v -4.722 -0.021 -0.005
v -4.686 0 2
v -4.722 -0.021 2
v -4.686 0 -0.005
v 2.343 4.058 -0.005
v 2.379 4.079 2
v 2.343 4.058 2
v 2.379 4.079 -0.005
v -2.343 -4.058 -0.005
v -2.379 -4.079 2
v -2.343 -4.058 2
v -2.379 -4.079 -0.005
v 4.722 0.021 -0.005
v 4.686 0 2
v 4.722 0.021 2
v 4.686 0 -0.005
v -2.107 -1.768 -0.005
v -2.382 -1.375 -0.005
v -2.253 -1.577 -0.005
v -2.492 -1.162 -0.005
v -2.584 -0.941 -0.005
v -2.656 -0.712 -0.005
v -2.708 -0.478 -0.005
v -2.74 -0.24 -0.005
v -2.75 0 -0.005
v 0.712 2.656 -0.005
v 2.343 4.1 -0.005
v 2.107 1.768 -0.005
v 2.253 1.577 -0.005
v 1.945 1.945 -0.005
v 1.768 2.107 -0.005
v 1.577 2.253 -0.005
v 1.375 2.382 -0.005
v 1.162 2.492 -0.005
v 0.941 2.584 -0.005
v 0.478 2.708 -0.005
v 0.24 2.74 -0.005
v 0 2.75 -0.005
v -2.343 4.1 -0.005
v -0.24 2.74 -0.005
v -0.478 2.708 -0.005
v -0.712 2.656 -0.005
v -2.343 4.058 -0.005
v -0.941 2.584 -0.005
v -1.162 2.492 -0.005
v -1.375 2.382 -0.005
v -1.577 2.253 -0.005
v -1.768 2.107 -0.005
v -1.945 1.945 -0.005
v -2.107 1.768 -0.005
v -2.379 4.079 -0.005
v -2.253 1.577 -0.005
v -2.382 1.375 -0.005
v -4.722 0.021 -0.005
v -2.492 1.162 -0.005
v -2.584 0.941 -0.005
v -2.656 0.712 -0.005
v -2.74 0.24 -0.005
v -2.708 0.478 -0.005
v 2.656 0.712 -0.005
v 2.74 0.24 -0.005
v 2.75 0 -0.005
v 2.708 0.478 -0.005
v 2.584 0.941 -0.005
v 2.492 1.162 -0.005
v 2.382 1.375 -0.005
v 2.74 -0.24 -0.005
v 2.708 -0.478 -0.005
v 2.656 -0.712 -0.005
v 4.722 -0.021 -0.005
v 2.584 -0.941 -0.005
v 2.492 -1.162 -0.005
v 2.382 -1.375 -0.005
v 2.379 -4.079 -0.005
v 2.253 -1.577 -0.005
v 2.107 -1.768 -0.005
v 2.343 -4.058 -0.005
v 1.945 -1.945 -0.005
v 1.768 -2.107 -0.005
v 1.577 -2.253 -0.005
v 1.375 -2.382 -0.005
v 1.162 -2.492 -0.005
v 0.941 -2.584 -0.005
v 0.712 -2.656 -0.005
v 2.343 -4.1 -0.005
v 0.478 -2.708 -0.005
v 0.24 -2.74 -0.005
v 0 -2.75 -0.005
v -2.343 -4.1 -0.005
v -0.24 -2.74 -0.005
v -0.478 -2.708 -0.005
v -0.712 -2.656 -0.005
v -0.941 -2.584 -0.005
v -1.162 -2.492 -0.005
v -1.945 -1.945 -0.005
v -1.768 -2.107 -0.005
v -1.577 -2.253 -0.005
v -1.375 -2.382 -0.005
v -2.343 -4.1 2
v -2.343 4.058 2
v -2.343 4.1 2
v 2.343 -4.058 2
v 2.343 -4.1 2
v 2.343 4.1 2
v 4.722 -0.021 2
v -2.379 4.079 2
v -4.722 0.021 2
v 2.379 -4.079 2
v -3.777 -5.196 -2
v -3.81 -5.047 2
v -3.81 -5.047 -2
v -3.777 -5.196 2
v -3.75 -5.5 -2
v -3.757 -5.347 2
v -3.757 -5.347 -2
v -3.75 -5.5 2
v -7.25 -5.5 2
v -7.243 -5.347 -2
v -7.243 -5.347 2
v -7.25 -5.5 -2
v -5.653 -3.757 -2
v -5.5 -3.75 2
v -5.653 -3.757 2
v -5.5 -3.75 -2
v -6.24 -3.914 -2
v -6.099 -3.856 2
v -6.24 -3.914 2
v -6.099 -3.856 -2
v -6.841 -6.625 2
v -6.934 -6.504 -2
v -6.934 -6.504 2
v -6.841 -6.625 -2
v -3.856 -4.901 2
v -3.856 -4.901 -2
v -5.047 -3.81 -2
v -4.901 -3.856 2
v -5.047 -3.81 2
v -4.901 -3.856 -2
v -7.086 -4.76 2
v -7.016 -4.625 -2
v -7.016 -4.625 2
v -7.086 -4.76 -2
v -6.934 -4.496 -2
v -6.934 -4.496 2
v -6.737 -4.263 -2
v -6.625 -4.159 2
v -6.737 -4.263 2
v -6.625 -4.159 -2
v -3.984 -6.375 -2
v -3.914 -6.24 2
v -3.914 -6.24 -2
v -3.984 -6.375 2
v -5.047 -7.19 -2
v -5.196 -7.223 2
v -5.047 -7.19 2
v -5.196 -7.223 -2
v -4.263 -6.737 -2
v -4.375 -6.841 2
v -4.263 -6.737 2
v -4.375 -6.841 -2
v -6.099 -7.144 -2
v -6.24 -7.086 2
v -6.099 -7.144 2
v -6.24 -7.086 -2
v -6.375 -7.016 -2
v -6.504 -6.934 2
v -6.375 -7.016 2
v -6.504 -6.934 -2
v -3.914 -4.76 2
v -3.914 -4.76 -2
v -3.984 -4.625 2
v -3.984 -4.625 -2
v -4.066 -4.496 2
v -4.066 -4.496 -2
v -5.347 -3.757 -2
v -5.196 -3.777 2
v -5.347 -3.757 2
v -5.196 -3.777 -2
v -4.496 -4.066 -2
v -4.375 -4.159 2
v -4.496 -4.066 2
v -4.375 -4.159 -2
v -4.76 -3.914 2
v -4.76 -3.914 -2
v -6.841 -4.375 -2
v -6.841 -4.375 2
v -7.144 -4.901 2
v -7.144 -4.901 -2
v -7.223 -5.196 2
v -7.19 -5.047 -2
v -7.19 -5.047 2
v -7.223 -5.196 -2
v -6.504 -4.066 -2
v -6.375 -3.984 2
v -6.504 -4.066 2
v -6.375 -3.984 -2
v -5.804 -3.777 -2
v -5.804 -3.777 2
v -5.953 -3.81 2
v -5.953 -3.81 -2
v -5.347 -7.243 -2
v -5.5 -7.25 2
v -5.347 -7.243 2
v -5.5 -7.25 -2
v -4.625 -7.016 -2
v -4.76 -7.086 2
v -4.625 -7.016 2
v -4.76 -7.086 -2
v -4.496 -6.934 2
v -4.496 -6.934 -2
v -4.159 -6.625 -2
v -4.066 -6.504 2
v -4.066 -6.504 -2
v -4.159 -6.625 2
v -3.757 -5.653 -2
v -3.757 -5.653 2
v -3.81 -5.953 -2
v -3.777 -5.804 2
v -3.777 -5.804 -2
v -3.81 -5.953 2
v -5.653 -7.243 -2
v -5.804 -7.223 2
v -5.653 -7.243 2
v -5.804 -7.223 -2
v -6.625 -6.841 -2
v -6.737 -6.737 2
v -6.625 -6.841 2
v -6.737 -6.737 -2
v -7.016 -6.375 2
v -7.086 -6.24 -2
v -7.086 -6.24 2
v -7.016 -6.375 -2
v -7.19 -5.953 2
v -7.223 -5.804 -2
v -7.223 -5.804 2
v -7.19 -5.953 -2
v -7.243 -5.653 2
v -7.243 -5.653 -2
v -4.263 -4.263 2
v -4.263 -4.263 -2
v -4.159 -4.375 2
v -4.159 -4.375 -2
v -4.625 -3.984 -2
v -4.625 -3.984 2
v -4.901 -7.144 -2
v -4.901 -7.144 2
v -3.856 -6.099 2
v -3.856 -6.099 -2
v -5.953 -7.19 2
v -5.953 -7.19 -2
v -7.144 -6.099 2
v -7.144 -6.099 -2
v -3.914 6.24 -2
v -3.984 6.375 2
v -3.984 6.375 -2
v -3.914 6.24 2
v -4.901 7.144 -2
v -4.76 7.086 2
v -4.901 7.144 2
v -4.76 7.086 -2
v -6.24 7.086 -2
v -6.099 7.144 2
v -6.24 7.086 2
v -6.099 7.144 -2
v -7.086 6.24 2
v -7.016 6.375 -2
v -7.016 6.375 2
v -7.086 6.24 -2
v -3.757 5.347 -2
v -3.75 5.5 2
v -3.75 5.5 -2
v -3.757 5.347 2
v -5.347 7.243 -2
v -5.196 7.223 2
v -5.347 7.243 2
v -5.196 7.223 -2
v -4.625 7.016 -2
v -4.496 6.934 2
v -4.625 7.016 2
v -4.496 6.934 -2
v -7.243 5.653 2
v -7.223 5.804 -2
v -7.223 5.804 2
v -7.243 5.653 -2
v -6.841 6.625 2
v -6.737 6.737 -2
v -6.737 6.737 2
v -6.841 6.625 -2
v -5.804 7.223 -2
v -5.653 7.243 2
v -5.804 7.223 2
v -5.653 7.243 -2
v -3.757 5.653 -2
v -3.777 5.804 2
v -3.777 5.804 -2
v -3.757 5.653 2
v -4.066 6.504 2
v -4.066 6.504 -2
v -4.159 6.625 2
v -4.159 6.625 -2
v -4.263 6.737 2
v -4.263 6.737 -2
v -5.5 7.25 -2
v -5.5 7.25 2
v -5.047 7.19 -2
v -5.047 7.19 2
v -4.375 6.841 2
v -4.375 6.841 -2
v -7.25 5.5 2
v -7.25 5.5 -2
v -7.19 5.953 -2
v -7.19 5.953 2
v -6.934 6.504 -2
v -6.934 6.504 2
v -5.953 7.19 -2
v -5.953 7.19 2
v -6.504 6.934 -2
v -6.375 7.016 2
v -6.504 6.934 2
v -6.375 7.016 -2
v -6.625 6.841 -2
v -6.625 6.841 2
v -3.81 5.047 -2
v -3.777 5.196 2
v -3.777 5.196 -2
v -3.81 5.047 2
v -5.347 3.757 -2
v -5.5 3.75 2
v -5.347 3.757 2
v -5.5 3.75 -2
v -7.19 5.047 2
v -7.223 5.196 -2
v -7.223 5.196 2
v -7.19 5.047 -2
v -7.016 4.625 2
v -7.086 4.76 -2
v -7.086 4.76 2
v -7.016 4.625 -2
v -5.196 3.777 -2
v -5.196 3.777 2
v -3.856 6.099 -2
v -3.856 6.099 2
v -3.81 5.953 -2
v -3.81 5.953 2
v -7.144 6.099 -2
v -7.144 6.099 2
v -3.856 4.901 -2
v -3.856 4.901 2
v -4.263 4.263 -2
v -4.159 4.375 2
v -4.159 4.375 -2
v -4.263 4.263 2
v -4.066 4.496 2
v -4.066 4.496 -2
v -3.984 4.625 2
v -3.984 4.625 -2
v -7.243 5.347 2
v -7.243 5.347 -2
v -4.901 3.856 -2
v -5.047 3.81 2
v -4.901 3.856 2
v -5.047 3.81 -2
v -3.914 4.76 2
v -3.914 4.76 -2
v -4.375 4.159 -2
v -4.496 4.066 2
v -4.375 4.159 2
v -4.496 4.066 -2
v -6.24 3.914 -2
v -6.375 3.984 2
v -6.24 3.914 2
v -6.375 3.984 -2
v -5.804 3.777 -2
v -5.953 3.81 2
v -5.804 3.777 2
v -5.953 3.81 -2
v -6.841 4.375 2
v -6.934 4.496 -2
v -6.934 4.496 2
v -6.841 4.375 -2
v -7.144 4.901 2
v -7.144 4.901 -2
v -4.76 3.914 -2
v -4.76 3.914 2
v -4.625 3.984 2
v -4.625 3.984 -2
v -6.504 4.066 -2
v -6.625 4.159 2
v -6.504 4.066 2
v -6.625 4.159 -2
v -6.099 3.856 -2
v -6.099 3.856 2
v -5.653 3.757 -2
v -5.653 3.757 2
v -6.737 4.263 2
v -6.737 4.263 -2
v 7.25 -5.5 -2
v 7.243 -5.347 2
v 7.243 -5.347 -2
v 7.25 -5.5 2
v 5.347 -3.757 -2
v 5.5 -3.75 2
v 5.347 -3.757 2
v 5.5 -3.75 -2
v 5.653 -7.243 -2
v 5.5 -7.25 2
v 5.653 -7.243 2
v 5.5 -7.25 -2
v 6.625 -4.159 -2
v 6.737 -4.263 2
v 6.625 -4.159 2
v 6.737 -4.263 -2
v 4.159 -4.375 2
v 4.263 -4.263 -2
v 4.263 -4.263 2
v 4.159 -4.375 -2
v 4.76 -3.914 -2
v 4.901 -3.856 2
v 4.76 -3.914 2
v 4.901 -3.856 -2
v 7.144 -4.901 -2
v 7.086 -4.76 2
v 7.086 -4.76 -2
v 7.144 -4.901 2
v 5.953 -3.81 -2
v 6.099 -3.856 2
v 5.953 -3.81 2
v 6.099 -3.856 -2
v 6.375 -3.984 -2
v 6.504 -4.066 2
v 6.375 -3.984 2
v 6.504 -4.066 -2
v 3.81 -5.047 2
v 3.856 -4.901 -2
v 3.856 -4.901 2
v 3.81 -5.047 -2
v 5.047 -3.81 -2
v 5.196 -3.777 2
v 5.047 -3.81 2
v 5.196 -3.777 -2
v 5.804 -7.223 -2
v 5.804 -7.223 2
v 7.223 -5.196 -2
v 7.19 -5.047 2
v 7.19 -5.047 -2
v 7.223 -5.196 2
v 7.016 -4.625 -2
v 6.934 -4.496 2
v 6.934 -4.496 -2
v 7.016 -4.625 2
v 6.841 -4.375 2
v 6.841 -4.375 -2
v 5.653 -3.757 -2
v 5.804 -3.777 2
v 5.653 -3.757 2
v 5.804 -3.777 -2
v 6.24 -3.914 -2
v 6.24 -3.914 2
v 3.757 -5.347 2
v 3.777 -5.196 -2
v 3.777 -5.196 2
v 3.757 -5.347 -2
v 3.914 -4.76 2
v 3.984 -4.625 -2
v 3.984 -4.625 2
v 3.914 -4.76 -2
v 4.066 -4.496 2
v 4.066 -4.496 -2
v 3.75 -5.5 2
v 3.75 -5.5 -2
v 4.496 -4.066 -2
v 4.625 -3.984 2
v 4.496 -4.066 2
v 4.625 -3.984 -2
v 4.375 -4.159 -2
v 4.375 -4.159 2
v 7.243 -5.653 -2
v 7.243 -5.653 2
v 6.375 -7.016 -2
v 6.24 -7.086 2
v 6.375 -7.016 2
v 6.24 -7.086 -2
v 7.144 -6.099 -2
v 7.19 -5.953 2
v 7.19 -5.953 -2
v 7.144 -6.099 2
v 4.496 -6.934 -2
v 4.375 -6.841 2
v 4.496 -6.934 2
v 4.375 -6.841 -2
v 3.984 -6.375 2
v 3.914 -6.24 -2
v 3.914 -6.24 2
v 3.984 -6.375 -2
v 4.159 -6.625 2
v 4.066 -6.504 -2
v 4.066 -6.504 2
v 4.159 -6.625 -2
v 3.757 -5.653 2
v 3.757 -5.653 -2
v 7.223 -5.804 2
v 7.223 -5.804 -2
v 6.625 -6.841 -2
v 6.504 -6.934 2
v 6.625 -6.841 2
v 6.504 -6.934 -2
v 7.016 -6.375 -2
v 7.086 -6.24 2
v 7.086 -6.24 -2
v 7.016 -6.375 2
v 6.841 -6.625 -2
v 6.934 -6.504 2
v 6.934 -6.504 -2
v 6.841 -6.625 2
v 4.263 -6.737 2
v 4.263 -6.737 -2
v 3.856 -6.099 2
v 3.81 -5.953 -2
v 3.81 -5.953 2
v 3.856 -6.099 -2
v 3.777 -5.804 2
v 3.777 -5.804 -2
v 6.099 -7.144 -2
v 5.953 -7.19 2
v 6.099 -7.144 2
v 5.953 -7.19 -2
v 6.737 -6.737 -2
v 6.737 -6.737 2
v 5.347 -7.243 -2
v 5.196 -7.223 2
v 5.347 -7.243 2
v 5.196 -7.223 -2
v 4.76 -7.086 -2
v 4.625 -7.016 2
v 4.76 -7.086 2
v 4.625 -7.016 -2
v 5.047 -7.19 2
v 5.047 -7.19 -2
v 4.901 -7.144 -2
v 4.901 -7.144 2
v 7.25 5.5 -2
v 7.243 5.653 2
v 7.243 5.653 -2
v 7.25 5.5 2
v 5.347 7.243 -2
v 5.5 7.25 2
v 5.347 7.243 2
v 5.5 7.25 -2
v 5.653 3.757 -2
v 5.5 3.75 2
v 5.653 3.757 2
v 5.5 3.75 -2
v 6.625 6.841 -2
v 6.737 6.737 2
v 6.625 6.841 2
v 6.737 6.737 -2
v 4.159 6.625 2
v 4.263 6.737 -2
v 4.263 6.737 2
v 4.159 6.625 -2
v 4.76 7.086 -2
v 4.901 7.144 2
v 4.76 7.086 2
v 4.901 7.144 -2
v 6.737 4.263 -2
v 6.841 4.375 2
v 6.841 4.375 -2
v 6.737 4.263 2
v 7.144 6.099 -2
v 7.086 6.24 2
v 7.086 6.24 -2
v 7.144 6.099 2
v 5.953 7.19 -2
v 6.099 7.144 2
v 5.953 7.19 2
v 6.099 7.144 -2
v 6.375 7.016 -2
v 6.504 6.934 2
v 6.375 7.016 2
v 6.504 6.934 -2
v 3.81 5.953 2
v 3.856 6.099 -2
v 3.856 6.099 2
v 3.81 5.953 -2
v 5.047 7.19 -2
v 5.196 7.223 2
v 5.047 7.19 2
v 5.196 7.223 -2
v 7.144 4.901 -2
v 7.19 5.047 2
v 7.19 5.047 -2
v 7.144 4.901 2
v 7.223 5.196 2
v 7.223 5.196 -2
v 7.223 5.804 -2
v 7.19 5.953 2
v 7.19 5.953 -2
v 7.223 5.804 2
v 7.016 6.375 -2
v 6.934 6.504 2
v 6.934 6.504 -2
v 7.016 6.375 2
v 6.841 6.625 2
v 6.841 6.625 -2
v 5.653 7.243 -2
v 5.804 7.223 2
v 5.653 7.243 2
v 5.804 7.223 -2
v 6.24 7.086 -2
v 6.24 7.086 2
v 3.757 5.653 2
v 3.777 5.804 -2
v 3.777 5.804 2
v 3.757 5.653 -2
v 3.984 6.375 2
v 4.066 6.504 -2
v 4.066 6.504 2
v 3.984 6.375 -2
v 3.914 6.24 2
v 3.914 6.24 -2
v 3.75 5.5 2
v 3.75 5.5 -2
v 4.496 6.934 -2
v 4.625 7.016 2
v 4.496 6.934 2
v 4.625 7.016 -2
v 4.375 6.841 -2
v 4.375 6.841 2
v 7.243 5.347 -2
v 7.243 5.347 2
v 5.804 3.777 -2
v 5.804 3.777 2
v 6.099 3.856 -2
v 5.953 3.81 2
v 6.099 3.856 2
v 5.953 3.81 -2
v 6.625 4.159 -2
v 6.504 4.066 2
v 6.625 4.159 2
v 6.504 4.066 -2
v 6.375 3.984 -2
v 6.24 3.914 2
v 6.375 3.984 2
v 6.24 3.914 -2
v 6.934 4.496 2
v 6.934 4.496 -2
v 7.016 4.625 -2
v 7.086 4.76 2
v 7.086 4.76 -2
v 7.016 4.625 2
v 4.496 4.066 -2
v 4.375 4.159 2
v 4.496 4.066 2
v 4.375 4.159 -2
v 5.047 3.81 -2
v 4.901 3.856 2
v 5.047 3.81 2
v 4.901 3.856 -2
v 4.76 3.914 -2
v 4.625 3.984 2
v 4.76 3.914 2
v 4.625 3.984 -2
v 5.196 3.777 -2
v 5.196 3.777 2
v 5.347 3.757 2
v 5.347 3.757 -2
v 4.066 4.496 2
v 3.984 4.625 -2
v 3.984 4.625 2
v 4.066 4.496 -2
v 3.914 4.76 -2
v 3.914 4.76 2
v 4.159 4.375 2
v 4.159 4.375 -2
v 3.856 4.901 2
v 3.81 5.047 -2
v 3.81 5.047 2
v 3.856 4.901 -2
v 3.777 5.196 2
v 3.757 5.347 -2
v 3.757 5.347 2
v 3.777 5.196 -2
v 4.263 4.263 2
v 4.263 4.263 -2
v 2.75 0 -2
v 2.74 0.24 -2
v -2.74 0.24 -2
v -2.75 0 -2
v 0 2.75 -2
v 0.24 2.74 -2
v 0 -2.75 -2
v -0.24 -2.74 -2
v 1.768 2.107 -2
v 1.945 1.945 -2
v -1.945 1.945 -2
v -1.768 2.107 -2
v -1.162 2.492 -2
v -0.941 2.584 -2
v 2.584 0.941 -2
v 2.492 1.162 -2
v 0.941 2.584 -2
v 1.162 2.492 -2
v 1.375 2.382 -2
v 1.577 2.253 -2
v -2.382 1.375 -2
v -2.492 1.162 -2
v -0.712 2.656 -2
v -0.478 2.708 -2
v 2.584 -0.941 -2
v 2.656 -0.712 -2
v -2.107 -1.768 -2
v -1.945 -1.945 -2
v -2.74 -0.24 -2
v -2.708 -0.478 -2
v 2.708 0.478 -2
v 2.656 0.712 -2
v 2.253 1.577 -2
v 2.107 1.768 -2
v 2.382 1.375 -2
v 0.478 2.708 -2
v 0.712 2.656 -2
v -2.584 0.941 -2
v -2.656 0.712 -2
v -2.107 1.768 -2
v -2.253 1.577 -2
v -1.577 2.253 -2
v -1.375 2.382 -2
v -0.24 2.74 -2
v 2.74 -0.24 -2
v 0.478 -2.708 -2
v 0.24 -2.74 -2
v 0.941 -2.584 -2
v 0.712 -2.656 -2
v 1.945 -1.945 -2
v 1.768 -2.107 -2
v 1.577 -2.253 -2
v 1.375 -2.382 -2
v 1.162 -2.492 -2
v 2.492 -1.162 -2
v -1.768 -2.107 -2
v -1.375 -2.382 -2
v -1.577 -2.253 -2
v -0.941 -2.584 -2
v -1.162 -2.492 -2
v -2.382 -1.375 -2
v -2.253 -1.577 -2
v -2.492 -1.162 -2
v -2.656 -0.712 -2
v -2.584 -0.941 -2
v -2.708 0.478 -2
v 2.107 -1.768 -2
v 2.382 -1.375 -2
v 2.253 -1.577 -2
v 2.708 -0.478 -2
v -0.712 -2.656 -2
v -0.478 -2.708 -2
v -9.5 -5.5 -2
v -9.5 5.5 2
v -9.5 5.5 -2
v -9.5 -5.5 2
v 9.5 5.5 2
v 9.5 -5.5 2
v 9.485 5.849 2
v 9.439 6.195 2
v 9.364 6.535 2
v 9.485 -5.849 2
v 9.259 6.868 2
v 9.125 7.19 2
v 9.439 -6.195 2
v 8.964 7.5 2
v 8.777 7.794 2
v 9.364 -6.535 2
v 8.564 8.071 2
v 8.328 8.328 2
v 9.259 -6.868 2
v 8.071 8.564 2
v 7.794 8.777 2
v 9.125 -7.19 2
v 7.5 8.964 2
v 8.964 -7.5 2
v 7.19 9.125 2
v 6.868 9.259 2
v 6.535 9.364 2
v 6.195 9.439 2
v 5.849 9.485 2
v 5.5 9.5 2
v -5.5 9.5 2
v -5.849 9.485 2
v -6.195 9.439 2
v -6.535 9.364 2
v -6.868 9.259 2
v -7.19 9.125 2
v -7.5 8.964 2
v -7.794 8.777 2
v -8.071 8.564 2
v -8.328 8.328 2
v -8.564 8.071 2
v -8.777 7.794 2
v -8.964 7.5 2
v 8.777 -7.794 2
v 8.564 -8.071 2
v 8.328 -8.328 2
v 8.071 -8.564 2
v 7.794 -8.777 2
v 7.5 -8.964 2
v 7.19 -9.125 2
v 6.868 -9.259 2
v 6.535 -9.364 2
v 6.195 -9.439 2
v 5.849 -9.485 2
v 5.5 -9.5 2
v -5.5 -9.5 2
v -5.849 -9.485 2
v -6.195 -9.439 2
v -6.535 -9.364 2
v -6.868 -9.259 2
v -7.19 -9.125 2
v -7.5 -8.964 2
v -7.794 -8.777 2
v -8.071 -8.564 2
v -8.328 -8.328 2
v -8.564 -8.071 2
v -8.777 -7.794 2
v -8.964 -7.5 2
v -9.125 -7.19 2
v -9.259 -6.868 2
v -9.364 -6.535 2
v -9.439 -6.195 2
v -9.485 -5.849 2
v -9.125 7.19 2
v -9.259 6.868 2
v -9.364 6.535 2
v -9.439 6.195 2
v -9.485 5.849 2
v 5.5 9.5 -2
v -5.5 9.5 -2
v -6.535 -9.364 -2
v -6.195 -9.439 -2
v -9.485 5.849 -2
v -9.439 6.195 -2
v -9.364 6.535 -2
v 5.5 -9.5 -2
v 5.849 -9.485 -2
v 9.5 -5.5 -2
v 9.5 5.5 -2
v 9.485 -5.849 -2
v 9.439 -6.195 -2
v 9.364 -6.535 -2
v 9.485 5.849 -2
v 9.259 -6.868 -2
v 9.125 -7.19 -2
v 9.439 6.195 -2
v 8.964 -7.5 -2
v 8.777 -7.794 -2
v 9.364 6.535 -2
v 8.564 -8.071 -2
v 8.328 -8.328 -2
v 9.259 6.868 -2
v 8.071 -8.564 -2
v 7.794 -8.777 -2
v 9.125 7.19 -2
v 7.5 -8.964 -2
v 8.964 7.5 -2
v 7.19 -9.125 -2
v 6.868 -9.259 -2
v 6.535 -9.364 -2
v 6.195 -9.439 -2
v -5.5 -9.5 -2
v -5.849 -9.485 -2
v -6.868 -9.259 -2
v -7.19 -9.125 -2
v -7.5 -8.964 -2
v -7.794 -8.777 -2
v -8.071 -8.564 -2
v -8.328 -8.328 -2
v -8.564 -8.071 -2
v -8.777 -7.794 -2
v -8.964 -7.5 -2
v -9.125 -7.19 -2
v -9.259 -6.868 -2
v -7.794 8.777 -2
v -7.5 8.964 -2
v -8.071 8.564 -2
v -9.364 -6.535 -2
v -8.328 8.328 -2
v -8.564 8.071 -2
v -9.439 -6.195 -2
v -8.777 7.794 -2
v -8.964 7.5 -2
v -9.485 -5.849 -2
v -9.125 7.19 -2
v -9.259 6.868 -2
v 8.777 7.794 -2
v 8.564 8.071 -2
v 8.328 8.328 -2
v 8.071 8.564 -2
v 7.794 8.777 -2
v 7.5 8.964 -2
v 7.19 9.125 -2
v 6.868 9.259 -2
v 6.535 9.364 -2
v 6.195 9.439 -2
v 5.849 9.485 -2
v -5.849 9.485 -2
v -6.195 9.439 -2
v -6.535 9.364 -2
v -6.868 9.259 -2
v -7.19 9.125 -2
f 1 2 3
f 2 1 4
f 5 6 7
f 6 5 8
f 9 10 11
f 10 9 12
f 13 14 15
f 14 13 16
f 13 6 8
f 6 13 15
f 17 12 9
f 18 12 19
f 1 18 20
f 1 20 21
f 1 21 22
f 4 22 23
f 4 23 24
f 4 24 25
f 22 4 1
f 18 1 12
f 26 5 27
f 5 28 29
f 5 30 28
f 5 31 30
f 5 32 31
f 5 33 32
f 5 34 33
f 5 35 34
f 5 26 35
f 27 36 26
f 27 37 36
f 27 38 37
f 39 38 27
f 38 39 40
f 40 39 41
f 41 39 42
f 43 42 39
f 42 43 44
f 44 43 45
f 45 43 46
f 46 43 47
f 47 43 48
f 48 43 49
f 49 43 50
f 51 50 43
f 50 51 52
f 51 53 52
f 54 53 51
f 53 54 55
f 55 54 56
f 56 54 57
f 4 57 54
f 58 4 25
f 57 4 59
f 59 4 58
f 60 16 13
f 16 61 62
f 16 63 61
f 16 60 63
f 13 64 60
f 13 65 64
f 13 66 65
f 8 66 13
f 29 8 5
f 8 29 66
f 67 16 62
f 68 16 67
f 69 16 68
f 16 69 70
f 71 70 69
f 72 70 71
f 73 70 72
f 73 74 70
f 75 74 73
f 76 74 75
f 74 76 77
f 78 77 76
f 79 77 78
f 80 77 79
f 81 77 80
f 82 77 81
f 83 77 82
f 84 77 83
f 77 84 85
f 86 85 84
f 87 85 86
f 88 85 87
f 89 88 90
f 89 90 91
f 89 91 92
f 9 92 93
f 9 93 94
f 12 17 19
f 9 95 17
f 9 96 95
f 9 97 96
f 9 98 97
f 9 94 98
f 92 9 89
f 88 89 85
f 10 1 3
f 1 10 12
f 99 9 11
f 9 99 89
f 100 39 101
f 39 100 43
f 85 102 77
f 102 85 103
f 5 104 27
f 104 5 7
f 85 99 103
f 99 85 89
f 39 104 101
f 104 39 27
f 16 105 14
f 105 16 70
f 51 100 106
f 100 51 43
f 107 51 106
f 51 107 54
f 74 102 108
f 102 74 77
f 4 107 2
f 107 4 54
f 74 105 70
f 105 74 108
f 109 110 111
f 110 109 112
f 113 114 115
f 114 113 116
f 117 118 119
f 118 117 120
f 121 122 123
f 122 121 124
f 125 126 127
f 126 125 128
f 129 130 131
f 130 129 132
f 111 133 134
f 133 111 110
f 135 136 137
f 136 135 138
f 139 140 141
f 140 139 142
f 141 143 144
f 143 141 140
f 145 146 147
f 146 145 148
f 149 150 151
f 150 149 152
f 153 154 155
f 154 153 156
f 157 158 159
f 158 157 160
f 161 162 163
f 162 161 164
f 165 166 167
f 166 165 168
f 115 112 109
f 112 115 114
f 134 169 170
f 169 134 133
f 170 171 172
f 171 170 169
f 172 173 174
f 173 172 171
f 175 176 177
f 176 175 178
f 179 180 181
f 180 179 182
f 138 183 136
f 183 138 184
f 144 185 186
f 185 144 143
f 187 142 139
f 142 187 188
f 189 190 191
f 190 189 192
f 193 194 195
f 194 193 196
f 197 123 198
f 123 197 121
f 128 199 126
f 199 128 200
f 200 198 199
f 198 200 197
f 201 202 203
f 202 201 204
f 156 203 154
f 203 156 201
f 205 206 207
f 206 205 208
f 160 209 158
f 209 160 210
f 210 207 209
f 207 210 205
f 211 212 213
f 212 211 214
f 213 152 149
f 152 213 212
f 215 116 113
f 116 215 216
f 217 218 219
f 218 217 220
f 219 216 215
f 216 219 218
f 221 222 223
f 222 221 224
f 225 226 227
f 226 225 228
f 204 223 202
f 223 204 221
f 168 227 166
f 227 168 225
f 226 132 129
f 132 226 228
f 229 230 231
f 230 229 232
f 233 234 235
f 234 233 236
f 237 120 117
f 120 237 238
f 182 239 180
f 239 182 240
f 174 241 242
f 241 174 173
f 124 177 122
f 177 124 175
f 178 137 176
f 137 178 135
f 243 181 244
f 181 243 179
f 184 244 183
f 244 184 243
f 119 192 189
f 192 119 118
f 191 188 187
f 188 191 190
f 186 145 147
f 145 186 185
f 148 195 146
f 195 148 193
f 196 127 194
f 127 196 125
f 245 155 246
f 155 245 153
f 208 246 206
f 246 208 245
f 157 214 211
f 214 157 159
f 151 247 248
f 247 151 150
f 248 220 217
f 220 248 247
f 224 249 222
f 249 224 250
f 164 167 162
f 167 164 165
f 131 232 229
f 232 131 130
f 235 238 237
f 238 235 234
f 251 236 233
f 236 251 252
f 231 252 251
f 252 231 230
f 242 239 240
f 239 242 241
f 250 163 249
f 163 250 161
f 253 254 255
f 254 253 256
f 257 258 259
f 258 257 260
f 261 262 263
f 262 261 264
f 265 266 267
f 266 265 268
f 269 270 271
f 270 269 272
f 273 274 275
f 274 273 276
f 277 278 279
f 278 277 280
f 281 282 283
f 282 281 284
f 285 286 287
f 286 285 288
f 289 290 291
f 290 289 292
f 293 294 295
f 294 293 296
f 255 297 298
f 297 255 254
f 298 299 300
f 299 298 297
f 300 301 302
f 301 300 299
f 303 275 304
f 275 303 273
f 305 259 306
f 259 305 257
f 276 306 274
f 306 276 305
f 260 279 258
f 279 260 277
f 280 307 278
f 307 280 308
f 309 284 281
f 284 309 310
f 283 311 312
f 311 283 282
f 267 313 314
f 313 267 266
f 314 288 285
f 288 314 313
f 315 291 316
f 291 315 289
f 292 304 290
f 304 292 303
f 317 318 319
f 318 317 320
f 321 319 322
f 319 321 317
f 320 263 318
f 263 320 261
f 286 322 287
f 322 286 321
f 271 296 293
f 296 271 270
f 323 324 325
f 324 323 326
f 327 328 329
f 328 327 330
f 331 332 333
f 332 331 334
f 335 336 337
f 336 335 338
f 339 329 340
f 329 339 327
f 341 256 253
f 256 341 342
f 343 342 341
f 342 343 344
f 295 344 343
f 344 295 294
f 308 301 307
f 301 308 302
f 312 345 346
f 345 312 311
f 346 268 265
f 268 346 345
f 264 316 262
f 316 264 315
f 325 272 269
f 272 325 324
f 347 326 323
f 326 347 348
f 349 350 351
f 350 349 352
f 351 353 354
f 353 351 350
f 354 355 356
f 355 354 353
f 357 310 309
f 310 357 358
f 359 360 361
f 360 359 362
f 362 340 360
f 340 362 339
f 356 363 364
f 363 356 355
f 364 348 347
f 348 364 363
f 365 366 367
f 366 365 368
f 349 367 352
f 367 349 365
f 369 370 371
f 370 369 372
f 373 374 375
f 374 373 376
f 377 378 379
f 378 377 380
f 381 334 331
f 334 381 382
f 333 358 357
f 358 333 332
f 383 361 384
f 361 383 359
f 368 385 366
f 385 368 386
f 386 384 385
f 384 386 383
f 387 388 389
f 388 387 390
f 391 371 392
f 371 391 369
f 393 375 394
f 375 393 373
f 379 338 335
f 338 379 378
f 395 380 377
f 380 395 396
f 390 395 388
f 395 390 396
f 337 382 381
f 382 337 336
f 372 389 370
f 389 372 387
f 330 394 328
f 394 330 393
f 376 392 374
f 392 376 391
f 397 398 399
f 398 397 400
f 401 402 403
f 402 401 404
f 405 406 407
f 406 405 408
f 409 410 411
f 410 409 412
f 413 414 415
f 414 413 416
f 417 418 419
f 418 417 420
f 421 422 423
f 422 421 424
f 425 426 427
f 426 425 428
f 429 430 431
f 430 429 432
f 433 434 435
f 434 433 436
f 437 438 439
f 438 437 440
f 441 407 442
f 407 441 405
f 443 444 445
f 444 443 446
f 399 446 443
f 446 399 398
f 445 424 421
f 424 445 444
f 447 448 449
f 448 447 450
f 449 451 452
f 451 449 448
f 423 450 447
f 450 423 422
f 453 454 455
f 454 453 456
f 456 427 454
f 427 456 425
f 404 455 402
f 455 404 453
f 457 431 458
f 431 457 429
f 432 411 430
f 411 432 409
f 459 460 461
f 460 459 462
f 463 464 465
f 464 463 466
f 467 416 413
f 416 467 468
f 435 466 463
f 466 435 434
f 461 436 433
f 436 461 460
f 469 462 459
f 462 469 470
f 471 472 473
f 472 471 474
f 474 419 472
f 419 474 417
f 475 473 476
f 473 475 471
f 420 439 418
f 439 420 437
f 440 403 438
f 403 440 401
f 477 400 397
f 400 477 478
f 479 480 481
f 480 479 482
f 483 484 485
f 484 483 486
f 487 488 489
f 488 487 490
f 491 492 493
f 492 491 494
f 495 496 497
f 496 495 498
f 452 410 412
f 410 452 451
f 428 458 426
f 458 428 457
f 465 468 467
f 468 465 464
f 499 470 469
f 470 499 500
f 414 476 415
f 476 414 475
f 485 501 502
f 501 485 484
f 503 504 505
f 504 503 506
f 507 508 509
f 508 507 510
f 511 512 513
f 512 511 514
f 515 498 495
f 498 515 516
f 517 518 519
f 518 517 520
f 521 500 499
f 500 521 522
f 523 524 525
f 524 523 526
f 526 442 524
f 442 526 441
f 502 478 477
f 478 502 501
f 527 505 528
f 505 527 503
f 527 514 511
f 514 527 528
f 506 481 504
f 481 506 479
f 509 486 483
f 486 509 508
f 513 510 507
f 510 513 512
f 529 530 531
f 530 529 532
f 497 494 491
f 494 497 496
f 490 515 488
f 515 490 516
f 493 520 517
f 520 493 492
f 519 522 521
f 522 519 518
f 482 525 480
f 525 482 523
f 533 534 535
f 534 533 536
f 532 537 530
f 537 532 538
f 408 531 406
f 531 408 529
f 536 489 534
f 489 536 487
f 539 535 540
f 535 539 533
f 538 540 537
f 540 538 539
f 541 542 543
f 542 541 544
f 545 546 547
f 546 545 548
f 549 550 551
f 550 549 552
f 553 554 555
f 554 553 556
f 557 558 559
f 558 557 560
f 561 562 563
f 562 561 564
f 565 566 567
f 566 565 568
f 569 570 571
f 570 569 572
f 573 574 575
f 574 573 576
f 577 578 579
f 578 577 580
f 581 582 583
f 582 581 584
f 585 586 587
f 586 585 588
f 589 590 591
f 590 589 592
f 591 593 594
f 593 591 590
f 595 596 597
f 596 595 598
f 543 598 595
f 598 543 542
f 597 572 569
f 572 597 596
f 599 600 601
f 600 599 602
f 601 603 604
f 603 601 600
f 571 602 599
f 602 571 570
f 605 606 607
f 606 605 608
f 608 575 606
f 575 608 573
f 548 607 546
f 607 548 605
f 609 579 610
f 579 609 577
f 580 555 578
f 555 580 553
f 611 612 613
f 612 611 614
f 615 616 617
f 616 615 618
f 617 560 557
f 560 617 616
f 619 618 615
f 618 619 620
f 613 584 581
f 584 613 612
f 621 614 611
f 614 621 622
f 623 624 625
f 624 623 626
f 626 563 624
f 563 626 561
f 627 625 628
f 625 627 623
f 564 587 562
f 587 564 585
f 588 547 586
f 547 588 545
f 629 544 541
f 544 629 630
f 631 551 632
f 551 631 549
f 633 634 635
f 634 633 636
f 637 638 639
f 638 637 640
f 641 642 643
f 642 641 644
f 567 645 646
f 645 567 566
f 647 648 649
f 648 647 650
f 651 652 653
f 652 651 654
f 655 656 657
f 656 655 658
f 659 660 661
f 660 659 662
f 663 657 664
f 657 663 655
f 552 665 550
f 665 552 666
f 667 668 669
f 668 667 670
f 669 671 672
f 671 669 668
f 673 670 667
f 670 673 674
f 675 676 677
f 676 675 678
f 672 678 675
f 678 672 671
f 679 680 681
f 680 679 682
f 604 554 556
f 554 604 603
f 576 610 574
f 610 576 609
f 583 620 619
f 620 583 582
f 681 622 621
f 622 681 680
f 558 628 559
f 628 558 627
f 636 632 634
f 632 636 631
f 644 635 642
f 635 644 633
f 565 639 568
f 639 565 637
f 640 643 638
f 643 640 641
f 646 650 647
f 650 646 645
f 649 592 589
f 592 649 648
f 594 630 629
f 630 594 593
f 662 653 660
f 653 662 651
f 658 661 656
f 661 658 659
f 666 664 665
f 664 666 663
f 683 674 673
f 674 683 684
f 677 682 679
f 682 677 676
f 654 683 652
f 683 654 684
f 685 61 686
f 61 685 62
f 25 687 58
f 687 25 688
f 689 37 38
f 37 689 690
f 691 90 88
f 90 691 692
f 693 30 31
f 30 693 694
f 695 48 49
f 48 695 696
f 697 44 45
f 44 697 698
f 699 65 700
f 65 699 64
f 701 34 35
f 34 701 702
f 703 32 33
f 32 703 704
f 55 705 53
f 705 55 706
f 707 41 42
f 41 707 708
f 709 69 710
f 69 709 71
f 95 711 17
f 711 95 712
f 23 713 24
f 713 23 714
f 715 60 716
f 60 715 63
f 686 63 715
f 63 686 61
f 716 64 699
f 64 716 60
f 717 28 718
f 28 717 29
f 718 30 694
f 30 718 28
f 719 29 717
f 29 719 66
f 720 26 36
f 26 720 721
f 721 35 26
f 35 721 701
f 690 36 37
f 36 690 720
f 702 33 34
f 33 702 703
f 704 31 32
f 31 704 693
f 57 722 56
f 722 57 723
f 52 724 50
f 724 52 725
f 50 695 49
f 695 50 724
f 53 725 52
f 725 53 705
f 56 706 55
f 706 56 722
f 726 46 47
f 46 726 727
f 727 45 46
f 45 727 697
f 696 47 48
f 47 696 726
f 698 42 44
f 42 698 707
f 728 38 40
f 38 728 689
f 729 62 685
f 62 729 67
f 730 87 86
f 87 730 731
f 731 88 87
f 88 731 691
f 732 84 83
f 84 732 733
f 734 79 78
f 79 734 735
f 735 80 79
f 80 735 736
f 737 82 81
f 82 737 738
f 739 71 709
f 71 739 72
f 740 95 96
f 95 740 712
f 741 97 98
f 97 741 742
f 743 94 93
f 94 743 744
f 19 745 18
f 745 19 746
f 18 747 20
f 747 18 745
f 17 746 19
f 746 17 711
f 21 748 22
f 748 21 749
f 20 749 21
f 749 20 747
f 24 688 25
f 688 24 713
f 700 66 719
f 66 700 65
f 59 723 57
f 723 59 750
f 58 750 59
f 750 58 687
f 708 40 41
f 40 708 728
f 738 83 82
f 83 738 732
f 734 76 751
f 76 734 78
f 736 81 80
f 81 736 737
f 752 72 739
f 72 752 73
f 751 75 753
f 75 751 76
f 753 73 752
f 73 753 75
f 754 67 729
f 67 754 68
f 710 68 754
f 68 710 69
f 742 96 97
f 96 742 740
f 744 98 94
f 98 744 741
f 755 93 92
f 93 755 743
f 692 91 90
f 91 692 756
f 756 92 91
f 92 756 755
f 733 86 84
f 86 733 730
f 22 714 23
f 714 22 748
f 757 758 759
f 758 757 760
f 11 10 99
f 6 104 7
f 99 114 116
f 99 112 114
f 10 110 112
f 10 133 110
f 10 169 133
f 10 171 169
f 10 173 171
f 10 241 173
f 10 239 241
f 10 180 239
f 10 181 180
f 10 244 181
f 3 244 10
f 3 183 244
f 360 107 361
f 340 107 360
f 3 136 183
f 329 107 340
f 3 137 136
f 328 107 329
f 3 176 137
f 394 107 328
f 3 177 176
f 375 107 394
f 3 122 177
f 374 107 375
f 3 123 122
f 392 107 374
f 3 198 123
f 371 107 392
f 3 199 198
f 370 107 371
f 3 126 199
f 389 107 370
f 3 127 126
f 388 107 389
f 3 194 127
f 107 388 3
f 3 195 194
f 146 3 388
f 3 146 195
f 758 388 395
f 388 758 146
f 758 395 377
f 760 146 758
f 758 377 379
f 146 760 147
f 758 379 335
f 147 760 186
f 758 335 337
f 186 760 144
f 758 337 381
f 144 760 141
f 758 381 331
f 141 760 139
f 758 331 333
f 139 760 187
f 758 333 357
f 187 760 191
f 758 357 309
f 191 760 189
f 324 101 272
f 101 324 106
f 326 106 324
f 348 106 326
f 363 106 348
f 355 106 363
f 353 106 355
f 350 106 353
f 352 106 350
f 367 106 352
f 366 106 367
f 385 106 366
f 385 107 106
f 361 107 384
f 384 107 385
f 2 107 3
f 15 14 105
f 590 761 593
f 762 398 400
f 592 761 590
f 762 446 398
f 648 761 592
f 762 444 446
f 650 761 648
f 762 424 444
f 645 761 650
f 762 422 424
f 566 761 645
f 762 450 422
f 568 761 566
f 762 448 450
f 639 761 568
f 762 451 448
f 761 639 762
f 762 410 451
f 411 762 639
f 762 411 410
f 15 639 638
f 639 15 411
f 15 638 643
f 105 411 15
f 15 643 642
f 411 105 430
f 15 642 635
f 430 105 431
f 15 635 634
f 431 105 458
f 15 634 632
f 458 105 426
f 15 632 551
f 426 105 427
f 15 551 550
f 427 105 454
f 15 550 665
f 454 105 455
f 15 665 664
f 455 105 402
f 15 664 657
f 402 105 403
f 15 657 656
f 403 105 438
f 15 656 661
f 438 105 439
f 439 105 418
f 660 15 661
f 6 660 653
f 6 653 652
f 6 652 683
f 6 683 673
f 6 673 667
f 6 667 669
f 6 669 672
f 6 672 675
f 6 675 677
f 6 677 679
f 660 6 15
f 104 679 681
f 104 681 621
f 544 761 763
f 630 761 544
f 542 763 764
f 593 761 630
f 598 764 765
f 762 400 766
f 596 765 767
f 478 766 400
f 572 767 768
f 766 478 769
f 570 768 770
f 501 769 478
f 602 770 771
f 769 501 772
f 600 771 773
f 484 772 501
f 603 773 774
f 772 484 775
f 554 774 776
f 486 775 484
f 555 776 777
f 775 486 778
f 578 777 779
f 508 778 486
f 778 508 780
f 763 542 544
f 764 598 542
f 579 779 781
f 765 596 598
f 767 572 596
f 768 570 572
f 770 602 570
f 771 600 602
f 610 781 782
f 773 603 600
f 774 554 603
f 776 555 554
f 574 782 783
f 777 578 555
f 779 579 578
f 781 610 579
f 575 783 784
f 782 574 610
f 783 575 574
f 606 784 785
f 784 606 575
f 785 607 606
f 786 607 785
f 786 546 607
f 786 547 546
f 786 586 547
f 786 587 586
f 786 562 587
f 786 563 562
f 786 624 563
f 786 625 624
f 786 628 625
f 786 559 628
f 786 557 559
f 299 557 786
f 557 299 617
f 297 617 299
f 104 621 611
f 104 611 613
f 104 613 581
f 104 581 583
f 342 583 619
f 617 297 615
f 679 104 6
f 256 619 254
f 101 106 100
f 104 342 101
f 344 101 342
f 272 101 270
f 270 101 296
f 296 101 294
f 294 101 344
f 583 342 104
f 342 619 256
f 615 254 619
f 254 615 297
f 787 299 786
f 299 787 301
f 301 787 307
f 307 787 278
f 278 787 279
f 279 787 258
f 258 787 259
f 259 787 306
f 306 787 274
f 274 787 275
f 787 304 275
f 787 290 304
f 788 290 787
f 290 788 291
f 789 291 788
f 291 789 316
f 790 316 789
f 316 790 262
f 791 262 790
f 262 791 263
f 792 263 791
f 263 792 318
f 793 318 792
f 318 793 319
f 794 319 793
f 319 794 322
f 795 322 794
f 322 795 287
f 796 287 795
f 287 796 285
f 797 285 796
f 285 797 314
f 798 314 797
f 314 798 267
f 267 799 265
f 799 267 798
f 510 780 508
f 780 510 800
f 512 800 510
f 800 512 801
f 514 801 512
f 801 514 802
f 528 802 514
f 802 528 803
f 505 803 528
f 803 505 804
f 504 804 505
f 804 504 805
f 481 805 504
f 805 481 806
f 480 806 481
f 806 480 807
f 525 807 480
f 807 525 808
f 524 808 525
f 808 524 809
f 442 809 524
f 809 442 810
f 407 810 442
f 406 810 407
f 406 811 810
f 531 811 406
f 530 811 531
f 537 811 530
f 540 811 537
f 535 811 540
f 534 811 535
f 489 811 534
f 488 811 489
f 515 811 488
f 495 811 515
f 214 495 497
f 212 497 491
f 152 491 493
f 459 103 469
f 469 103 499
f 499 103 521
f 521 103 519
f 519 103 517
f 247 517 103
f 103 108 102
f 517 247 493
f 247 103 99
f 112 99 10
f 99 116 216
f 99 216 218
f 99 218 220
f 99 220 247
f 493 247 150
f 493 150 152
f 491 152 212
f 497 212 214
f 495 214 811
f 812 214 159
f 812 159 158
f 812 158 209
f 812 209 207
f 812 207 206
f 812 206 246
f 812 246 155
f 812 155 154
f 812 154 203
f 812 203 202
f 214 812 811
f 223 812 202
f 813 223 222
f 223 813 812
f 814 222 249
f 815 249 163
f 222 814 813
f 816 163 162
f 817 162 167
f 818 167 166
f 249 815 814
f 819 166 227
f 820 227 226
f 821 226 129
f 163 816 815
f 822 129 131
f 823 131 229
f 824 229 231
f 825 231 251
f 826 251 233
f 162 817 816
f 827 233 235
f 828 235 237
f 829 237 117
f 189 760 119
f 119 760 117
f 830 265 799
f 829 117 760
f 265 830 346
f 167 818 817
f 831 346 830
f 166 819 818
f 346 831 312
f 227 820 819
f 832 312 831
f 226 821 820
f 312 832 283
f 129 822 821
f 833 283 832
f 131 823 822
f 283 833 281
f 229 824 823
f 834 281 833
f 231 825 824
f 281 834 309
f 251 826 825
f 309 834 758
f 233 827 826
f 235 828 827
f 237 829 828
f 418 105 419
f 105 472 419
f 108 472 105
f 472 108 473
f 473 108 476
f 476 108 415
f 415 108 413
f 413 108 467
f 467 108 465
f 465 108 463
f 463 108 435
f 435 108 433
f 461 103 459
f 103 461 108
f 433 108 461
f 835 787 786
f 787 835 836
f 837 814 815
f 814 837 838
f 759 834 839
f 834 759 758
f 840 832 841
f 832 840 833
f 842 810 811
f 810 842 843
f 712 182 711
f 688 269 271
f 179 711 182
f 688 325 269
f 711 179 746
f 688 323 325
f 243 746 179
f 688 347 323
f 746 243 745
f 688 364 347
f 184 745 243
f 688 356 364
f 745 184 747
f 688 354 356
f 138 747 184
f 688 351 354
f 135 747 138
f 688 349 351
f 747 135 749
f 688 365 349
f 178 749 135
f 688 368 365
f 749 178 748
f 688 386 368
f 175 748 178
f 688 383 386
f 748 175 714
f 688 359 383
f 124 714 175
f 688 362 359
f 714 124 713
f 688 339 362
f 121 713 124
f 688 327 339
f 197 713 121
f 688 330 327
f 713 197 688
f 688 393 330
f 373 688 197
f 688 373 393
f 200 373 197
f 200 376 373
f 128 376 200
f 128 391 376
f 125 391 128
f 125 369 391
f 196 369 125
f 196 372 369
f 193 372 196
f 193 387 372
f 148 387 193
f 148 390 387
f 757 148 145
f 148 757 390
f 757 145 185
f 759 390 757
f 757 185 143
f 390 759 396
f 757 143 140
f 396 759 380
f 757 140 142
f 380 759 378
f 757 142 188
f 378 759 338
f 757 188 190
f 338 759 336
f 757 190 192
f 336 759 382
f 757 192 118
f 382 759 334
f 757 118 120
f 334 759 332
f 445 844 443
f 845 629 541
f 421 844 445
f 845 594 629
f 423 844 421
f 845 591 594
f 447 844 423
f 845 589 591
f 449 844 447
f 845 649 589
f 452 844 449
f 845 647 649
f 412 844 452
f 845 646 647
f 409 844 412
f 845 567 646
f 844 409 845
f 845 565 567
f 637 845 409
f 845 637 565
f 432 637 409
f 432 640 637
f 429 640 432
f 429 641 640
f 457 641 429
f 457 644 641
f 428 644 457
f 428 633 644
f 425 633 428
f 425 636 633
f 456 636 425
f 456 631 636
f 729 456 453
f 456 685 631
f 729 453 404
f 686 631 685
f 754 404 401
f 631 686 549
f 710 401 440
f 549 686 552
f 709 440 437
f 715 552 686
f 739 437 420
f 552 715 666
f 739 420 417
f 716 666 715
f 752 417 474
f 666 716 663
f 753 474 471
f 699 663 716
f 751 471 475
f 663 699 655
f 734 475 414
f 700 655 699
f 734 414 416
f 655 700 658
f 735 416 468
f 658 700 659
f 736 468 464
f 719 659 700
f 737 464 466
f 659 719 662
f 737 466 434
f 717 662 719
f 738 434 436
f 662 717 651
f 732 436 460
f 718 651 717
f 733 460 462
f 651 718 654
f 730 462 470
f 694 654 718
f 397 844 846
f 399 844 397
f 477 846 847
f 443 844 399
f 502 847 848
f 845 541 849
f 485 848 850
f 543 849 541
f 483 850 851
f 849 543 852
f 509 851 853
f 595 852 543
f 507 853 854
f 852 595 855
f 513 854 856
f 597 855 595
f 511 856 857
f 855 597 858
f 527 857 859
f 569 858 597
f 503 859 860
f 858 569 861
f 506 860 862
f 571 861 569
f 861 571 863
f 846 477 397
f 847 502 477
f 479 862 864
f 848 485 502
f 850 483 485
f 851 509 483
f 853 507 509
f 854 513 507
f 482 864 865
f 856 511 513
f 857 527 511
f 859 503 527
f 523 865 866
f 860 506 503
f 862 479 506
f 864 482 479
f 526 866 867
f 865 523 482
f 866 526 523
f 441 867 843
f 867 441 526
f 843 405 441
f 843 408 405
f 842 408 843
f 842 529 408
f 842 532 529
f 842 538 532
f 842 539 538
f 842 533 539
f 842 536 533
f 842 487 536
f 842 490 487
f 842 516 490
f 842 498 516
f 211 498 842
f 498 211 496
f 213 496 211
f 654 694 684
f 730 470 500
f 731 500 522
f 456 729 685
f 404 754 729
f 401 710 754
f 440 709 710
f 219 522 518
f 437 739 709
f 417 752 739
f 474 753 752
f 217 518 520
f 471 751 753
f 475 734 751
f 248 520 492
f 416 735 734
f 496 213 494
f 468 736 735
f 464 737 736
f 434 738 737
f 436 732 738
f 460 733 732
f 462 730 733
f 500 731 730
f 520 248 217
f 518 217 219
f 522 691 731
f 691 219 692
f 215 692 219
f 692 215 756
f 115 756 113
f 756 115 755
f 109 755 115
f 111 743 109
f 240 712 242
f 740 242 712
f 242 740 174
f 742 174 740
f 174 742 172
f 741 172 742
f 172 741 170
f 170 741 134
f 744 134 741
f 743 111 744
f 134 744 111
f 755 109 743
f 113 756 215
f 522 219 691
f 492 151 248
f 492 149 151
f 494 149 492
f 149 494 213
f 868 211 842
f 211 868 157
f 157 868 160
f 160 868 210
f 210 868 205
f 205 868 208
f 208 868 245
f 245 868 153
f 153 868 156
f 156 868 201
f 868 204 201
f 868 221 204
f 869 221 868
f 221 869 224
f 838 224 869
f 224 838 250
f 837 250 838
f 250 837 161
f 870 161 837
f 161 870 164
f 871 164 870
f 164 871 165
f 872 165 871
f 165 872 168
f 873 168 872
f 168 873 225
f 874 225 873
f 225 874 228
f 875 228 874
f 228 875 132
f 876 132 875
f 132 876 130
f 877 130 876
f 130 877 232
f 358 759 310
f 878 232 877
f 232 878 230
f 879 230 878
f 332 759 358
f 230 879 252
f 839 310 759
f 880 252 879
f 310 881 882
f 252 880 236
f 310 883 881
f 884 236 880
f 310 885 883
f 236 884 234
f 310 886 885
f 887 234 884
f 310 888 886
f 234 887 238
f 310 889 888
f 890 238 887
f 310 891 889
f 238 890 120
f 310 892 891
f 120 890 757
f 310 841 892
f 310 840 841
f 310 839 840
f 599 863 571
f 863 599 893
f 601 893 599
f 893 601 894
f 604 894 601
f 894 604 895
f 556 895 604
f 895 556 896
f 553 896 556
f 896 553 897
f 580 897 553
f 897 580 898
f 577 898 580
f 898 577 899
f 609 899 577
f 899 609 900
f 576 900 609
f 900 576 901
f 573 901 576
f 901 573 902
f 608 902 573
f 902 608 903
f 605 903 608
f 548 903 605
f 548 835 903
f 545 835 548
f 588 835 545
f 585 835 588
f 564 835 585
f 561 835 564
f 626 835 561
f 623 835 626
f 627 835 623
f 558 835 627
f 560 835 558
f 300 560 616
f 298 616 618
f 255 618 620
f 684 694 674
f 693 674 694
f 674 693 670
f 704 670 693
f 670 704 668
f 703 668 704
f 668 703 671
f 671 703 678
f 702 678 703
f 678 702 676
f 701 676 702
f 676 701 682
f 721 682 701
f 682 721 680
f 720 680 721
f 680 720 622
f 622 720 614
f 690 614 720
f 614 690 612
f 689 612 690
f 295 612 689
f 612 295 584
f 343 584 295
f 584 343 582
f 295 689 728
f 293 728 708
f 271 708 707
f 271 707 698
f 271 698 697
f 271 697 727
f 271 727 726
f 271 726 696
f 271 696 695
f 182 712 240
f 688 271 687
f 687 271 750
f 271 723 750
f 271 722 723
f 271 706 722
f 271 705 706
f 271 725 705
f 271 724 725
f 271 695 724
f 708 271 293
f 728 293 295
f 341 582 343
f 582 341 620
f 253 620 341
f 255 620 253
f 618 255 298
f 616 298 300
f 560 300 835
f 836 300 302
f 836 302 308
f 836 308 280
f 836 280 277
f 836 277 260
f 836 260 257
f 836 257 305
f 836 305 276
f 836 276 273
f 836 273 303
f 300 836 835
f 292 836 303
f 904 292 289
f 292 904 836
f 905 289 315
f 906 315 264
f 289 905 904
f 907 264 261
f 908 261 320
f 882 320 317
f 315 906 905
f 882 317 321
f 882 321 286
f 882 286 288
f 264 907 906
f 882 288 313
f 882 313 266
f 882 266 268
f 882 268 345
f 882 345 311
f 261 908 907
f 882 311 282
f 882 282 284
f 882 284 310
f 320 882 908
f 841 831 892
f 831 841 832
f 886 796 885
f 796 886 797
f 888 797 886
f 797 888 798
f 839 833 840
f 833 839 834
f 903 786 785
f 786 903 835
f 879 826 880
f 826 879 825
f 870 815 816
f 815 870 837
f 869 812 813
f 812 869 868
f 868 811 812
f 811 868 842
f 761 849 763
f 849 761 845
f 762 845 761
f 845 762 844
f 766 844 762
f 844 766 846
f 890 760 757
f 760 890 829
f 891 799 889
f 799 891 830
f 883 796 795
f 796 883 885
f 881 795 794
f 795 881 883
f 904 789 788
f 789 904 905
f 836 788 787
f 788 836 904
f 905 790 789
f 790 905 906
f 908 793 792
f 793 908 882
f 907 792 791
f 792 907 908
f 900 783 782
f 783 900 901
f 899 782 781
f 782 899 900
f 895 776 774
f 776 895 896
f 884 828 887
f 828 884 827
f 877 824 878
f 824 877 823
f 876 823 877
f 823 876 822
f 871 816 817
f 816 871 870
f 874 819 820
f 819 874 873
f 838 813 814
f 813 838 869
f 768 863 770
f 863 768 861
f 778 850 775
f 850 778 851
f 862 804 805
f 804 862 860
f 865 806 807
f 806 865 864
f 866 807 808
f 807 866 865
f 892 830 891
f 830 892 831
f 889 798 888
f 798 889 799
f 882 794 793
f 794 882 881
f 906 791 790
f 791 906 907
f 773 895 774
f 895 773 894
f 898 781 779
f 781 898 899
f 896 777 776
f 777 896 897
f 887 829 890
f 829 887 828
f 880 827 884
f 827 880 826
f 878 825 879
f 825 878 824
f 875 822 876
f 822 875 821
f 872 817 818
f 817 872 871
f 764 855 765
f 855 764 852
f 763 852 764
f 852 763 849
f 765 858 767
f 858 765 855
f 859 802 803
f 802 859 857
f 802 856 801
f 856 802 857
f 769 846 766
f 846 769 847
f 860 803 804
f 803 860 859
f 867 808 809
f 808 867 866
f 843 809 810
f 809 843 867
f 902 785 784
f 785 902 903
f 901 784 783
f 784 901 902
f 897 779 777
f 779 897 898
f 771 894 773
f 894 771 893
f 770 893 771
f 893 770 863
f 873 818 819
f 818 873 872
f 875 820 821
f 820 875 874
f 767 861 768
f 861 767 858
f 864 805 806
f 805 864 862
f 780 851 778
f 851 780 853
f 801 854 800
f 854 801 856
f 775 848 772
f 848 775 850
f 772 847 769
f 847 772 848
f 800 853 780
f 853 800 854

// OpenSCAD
$fa=5; $fs=0.1;

module hexagon(in_diam, height) {
  cube_x = in_diam/1.75;
  for (r = [-60, 0, 60]) rotate([0,0,r]) cube([cube_x, in_diam, height], center=true);
}

// надо две штуки, низ и верх
difference(){
    hull(){
        translate([-5.5, -5.5, 0]) cylinder(h=4, r=4, center=true);
        translate([-5.5, 5.5, 0]) cylinder(h=4, r=4, center=true);
        translate([5.5, -5.5, 0]) cylinder(h=4, r=4, center=true);
        translate([5.5, 5.5, 0]) cylinder(h=4, r=4, center=true);
    }
    
    union(){
        // крепежные отверстия
        translate([-5.5, -5.5, 0]) cylinder(h=4.01, r=1.75, center=true);
        translate([-5.5, 5.5, 0]) cylinder(h=4.01, r=1.75, center=true);
        translate([5.5, -5.5, 0]) cylinder(h=4.01, r=1.75, center=true);
        translate([5.5, 5.5, 0]) cylinder(h=4.01, r=1.75, center=true);
        
        // под шпильку
        cylinder(h=4.01, r=2.75, center=true);
        
        // под гайку
        translate([0,0,1]) hexagon(8.2, 2.01);
    }
}
